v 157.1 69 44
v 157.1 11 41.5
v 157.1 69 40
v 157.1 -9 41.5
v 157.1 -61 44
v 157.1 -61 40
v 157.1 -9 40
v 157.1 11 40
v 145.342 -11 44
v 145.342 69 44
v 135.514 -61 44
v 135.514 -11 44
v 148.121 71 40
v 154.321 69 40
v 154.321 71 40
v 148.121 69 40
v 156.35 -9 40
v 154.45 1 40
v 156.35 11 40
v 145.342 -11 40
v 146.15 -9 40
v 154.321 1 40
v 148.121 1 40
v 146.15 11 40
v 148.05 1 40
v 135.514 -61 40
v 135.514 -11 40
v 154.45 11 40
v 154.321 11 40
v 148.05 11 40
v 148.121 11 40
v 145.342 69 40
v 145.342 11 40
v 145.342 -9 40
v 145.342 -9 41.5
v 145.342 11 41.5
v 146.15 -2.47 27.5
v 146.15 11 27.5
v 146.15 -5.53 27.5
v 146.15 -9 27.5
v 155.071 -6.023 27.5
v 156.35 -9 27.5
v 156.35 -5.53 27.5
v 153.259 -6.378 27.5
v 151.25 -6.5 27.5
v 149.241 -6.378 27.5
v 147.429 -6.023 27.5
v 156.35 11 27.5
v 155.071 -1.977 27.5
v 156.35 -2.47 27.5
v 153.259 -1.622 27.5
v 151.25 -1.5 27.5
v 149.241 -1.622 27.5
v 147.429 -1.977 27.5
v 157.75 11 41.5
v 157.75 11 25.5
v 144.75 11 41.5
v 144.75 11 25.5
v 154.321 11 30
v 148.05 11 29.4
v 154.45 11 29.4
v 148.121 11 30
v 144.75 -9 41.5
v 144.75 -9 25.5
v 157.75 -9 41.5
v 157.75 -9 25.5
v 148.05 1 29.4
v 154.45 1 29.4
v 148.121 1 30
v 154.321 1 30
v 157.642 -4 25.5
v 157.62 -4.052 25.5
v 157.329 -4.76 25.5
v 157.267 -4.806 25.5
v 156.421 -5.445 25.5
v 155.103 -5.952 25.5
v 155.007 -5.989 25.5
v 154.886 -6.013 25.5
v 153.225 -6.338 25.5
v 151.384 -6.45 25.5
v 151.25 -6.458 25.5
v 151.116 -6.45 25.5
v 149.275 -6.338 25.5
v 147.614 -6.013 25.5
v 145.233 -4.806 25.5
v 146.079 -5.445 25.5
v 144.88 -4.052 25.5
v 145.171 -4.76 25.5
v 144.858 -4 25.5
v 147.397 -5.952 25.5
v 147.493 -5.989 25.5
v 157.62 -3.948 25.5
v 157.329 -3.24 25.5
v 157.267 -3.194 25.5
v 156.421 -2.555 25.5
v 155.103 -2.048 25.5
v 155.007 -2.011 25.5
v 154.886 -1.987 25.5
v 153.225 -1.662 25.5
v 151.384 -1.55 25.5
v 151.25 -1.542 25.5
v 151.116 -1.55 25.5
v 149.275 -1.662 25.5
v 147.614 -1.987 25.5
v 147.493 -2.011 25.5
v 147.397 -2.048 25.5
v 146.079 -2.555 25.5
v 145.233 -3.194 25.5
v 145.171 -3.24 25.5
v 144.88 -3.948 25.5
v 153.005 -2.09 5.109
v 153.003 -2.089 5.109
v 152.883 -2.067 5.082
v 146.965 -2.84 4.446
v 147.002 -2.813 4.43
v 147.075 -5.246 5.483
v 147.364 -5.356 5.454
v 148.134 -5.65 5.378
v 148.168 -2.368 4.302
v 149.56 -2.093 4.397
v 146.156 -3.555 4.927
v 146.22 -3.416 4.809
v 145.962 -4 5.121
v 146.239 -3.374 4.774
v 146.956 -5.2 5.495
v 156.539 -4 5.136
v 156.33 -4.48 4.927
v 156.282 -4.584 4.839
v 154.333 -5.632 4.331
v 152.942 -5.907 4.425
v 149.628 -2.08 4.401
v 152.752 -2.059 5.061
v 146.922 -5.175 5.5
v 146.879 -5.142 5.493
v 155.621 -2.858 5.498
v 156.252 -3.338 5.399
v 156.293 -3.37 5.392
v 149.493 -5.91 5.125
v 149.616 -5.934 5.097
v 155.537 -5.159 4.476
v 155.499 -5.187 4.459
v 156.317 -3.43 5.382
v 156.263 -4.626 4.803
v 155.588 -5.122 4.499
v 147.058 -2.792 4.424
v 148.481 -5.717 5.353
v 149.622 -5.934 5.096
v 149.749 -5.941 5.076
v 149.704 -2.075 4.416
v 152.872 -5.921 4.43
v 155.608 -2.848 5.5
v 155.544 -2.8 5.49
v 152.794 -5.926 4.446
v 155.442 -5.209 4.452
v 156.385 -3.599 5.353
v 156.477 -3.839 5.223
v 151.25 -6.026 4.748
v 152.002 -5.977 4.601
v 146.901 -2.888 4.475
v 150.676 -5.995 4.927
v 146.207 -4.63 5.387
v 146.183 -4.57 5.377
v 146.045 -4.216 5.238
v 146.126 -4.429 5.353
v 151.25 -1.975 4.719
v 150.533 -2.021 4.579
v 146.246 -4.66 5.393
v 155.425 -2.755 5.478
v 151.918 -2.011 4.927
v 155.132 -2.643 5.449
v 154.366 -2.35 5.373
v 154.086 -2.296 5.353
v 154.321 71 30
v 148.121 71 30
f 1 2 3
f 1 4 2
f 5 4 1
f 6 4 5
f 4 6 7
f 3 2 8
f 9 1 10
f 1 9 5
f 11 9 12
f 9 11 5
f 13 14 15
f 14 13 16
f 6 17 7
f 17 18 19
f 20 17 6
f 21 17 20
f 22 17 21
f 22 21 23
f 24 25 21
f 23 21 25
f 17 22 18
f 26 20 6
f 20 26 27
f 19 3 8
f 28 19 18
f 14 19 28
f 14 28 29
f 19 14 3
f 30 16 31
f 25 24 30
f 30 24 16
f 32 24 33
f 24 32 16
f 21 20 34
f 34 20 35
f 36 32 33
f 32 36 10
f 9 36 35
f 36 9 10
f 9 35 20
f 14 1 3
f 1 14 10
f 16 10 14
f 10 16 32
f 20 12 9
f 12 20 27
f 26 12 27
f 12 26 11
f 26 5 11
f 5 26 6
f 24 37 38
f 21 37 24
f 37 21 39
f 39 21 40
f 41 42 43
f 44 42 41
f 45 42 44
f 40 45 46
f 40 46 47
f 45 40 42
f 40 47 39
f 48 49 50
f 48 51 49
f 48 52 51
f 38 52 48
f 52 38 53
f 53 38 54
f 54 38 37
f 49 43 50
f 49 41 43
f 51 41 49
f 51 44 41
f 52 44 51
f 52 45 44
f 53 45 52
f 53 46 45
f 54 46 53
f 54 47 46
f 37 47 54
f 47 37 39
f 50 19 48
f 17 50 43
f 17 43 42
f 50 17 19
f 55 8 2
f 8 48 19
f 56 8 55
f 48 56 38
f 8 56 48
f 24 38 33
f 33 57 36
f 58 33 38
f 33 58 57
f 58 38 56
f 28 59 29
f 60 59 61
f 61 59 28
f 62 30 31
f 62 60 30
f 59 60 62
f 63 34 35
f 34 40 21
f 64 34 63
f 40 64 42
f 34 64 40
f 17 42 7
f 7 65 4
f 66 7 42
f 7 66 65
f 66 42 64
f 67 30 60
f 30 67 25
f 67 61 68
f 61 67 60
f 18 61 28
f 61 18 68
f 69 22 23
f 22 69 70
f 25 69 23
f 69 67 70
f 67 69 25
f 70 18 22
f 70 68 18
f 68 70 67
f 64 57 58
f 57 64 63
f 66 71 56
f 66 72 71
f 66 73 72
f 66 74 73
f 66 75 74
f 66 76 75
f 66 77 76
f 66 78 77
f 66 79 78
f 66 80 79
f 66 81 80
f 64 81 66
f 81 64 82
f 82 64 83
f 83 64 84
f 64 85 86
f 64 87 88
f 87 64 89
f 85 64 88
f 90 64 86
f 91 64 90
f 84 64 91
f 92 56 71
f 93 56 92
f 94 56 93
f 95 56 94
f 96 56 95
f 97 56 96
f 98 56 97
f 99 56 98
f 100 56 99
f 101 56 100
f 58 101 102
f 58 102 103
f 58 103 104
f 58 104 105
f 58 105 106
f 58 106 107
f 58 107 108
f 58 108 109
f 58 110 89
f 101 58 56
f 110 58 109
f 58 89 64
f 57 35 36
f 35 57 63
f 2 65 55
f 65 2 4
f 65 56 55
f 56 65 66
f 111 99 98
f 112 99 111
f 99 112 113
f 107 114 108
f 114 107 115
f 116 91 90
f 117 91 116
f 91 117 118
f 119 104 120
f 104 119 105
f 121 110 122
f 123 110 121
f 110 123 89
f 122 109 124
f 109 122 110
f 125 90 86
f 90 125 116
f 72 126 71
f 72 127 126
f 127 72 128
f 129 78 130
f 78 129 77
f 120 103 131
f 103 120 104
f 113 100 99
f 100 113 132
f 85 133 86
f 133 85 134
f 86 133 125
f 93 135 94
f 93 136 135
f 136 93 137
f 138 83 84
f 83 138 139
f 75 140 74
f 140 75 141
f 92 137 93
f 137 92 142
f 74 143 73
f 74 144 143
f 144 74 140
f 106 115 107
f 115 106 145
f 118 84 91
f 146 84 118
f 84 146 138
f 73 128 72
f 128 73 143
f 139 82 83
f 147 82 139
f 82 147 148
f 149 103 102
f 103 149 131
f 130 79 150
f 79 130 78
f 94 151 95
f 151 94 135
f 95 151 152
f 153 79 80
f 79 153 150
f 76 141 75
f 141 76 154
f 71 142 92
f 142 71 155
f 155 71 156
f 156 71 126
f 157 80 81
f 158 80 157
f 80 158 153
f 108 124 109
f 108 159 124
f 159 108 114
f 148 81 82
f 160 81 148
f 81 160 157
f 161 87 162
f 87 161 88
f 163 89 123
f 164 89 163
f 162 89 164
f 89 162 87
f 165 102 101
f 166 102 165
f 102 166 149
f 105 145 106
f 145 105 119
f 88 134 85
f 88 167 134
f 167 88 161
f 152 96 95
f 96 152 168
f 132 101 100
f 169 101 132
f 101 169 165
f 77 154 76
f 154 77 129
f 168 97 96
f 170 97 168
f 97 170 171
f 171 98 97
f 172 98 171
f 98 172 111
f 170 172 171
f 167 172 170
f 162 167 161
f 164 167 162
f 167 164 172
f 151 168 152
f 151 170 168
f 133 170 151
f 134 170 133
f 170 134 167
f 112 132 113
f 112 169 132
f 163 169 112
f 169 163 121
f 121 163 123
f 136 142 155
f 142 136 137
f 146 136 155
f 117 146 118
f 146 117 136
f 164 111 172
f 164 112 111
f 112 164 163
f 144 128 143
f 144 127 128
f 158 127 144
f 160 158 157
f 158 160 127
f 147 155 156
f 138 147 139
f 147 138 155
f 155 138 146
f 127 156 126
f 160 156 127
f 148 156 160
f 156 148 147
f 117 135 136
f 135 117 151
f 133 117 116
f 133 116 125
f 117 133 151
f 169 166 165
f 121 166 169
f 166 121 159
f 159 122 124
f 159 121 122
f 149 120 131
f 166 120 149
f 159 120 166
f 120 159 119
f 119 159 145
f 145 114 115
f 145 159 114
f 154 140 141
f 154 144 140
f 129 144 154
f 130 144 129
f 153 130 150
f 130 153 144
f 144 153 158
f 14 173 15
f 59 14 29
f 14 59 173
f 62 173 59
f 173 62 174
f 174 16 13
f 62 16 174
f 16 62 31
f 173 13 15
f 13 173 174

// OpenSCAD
// file: irkem_hammerTips_v1.scad
tol = 0.2;
extrWall = 1.7+tol;
extrH = 12.9+tol;//12.6+tol;
extrW = 10+tol;

hammerY = 20;
hammerZ = 24;

$fn = 20;

module hammerTips(){
//Strike cylinder:
//v1: made elliptical and added skew-angle indentation to:
//      1. Avoid hitting adjacent strings
//      2. Maximize likelihood of striking proper string
//      3. Ensure that hammer tip force on the string is centering
//Prior cone geometry resulted in adjacent string strikes in y axis for most keys
    difference(){
        translate([0,-5,0]) scale([2.6,1,1]) cylinder(hammerZ,2.5,2);
        translate([-12,-1.8,25]) rotate([0,90,-15]) cylinder(hammerZ,3,3);
    }
difference(){
    translate([-6.5,-10,-14]) cube([13,hammerY,16]);
    union(){uChan();translate([-extrW/2,-hammerY/2,-extrH]) cube([extrW,hammerY/2,extrH]);
}
}
module uChan(){
difference(){
    translate([-extrW/2,-hammerY/2,-extrH]) cube([extrW,hammerY,extrH]);
    translate([-extrW/2+extrWall,-hammerY/2,-extrH-extrWall]) cube([extrW-2*extrWall,hammerY,extrH]);
}
}
}

//hammerTips();
// main file
include <irkem_hammerTips_v1.scad>

xO = -6;
yO = -11;
zO = 40;

kH = 4;
bH = 10;
wL = 50;
bL = 80;
oct = 6.5 * 25.4;
gap = 2;
n_oct = 1;//5;
n_keys = 12 * n_oct;
oset = -1;

sharpFlag = 1;

for (k = [11]){//:1:(n_keys-1)]){
    //
    translate([k*13.75+6.0+xO,12+yO,-12.5+zO]) rotate([0,180,0]) hammerTips();
}

for (k = [0:1:(n_oct-1)]){

//C:
//color("ivory") translate([k*oct+0+xO,0+yO,0+zO]) cube([oct*1/12-gap,bL,kH]);
//color("ivory") translate([k*oct+0+xO,-wL+yO,0+zO]) cube([oct*1/7-gap,wL,kH]);

////C#:
//if (sharpFlag){    
//color("black") translate([k*oct+oct*1/12+xO,gap+yO,0+zO]) cube([oct*1/12-gap,bL,kH+bH]);
//}//

////D:
//color("ivory") translate([k*oct+oct*2/12+xO,0+yO,0+zO]) cube([oct*1/12-gap,bL,kH]);
//color("ivory") translate([k*oct+oct*1/7+xO,-wL+yO,0+zO]) cube([oct*1/7-gap,wL,kH]);//

////D#:
//if (sharpFlag){
//color("black") translate([k*oct+oct*3/12+xO,gap+yO,0+zO]) cube([oct*1/12-gap,bL,kH+bH]);
//}//

////E:
//color("ivory") translate([k*oct+oct*4/12+xO,0+yO,0+zO]) cube([2+oct*1/12-gap,bL,kH]);
//color("ivory") translate([k*oct+oct*2/7+xO,-wL+yO,0+zO]) cube([oct*1/7-gap,wL,kH]);//

////F:
//color("ivory") difference(){
//    translate([k*oct+oct*3/7+xO,-wL+yO,0+zO]) cube([oct*1/7-gap,wL+bL,kH]);
//    translate([k*oct+oct*6/12-2+xO,0+yO,0+zO]) cube([4+oct*(1/7-1/12)-gap,bL,kH]);
//}
//color("ivory") translate([k*oct+oct*3/7+xO,-wL+yO,0+zO]) cube([oct*1/7-gap,wL,kH]);//

////F#:
//if (sharpFlag){
//color("black") translate([k*oct+oct*6/12+xO,gap+yO,0+zO]) cube([oct*1/12-gap,bL,kH+bH]);
//}//

////G:
//color("ivory") translate([k*oct+oct*7/12+xO,0+yO,0+zO]) cube([oct*1/12-gap,bL,kH]);
//color("ivory") translate([k*oct+oct*4/7+xO,-wL+yO,0+zO]) cube([oct*1/7-gap,wL,kH]);//

////G#:
//if (sharpFlag){
//color("black") translate([k*oct+oct*8/12+xO,gap+yO,0+zO]) cube([oct*1/12-gap,bL,kH+bH]);
//}//

////A:
//color("ivory") translate([k*oct+oct*9/12+xO,0+yO,0+zO]) cube([oct*1/12-gap,bL,kH]);
//color("ivory") translate([k*oct+oct*5/7+xO,-wL+yO,0+zO]) cube([oct*1/7-gap,wL,kH]);//

////A#:
//if (sharpFlag){
//color("black") translate([k*oct+oct*10/12+xO,gap+yO,0+zO]) cube([oct*1/12-gap,bL,kH+bH]);
//}//

////B:
color("ivory") translate([k*oct+oct*11/12+xO,0+yO,0+zO]) cube([oct*1/12-gap,bL,kH]);
color("ivory") translate([k*oct+oct*6/7+xO,-wL+yO,0+zO]) cube([oct*1/7-gap,wL,kH]);//

}

for (i = [11]){//,2,4,5,7,9,11]){//[0:1:(n_keys-1)]){
    translate([oset+oct*i/12+(oct*1/12-6.2)/2+xO,2+10+yO,-10+zO]) cube([6.2,bL-10,10]);
}

//if (sharpFlag){
//    for (i = [1,3,6,8,10]){//[0:1:(n_keys-1)]){
//    translate([oset+oct*i/12+(oct*1/12-6.2)/2+xO,2+10+yO,-10+zO]) cube([6.2,bL-10,10]);
//}
//}
